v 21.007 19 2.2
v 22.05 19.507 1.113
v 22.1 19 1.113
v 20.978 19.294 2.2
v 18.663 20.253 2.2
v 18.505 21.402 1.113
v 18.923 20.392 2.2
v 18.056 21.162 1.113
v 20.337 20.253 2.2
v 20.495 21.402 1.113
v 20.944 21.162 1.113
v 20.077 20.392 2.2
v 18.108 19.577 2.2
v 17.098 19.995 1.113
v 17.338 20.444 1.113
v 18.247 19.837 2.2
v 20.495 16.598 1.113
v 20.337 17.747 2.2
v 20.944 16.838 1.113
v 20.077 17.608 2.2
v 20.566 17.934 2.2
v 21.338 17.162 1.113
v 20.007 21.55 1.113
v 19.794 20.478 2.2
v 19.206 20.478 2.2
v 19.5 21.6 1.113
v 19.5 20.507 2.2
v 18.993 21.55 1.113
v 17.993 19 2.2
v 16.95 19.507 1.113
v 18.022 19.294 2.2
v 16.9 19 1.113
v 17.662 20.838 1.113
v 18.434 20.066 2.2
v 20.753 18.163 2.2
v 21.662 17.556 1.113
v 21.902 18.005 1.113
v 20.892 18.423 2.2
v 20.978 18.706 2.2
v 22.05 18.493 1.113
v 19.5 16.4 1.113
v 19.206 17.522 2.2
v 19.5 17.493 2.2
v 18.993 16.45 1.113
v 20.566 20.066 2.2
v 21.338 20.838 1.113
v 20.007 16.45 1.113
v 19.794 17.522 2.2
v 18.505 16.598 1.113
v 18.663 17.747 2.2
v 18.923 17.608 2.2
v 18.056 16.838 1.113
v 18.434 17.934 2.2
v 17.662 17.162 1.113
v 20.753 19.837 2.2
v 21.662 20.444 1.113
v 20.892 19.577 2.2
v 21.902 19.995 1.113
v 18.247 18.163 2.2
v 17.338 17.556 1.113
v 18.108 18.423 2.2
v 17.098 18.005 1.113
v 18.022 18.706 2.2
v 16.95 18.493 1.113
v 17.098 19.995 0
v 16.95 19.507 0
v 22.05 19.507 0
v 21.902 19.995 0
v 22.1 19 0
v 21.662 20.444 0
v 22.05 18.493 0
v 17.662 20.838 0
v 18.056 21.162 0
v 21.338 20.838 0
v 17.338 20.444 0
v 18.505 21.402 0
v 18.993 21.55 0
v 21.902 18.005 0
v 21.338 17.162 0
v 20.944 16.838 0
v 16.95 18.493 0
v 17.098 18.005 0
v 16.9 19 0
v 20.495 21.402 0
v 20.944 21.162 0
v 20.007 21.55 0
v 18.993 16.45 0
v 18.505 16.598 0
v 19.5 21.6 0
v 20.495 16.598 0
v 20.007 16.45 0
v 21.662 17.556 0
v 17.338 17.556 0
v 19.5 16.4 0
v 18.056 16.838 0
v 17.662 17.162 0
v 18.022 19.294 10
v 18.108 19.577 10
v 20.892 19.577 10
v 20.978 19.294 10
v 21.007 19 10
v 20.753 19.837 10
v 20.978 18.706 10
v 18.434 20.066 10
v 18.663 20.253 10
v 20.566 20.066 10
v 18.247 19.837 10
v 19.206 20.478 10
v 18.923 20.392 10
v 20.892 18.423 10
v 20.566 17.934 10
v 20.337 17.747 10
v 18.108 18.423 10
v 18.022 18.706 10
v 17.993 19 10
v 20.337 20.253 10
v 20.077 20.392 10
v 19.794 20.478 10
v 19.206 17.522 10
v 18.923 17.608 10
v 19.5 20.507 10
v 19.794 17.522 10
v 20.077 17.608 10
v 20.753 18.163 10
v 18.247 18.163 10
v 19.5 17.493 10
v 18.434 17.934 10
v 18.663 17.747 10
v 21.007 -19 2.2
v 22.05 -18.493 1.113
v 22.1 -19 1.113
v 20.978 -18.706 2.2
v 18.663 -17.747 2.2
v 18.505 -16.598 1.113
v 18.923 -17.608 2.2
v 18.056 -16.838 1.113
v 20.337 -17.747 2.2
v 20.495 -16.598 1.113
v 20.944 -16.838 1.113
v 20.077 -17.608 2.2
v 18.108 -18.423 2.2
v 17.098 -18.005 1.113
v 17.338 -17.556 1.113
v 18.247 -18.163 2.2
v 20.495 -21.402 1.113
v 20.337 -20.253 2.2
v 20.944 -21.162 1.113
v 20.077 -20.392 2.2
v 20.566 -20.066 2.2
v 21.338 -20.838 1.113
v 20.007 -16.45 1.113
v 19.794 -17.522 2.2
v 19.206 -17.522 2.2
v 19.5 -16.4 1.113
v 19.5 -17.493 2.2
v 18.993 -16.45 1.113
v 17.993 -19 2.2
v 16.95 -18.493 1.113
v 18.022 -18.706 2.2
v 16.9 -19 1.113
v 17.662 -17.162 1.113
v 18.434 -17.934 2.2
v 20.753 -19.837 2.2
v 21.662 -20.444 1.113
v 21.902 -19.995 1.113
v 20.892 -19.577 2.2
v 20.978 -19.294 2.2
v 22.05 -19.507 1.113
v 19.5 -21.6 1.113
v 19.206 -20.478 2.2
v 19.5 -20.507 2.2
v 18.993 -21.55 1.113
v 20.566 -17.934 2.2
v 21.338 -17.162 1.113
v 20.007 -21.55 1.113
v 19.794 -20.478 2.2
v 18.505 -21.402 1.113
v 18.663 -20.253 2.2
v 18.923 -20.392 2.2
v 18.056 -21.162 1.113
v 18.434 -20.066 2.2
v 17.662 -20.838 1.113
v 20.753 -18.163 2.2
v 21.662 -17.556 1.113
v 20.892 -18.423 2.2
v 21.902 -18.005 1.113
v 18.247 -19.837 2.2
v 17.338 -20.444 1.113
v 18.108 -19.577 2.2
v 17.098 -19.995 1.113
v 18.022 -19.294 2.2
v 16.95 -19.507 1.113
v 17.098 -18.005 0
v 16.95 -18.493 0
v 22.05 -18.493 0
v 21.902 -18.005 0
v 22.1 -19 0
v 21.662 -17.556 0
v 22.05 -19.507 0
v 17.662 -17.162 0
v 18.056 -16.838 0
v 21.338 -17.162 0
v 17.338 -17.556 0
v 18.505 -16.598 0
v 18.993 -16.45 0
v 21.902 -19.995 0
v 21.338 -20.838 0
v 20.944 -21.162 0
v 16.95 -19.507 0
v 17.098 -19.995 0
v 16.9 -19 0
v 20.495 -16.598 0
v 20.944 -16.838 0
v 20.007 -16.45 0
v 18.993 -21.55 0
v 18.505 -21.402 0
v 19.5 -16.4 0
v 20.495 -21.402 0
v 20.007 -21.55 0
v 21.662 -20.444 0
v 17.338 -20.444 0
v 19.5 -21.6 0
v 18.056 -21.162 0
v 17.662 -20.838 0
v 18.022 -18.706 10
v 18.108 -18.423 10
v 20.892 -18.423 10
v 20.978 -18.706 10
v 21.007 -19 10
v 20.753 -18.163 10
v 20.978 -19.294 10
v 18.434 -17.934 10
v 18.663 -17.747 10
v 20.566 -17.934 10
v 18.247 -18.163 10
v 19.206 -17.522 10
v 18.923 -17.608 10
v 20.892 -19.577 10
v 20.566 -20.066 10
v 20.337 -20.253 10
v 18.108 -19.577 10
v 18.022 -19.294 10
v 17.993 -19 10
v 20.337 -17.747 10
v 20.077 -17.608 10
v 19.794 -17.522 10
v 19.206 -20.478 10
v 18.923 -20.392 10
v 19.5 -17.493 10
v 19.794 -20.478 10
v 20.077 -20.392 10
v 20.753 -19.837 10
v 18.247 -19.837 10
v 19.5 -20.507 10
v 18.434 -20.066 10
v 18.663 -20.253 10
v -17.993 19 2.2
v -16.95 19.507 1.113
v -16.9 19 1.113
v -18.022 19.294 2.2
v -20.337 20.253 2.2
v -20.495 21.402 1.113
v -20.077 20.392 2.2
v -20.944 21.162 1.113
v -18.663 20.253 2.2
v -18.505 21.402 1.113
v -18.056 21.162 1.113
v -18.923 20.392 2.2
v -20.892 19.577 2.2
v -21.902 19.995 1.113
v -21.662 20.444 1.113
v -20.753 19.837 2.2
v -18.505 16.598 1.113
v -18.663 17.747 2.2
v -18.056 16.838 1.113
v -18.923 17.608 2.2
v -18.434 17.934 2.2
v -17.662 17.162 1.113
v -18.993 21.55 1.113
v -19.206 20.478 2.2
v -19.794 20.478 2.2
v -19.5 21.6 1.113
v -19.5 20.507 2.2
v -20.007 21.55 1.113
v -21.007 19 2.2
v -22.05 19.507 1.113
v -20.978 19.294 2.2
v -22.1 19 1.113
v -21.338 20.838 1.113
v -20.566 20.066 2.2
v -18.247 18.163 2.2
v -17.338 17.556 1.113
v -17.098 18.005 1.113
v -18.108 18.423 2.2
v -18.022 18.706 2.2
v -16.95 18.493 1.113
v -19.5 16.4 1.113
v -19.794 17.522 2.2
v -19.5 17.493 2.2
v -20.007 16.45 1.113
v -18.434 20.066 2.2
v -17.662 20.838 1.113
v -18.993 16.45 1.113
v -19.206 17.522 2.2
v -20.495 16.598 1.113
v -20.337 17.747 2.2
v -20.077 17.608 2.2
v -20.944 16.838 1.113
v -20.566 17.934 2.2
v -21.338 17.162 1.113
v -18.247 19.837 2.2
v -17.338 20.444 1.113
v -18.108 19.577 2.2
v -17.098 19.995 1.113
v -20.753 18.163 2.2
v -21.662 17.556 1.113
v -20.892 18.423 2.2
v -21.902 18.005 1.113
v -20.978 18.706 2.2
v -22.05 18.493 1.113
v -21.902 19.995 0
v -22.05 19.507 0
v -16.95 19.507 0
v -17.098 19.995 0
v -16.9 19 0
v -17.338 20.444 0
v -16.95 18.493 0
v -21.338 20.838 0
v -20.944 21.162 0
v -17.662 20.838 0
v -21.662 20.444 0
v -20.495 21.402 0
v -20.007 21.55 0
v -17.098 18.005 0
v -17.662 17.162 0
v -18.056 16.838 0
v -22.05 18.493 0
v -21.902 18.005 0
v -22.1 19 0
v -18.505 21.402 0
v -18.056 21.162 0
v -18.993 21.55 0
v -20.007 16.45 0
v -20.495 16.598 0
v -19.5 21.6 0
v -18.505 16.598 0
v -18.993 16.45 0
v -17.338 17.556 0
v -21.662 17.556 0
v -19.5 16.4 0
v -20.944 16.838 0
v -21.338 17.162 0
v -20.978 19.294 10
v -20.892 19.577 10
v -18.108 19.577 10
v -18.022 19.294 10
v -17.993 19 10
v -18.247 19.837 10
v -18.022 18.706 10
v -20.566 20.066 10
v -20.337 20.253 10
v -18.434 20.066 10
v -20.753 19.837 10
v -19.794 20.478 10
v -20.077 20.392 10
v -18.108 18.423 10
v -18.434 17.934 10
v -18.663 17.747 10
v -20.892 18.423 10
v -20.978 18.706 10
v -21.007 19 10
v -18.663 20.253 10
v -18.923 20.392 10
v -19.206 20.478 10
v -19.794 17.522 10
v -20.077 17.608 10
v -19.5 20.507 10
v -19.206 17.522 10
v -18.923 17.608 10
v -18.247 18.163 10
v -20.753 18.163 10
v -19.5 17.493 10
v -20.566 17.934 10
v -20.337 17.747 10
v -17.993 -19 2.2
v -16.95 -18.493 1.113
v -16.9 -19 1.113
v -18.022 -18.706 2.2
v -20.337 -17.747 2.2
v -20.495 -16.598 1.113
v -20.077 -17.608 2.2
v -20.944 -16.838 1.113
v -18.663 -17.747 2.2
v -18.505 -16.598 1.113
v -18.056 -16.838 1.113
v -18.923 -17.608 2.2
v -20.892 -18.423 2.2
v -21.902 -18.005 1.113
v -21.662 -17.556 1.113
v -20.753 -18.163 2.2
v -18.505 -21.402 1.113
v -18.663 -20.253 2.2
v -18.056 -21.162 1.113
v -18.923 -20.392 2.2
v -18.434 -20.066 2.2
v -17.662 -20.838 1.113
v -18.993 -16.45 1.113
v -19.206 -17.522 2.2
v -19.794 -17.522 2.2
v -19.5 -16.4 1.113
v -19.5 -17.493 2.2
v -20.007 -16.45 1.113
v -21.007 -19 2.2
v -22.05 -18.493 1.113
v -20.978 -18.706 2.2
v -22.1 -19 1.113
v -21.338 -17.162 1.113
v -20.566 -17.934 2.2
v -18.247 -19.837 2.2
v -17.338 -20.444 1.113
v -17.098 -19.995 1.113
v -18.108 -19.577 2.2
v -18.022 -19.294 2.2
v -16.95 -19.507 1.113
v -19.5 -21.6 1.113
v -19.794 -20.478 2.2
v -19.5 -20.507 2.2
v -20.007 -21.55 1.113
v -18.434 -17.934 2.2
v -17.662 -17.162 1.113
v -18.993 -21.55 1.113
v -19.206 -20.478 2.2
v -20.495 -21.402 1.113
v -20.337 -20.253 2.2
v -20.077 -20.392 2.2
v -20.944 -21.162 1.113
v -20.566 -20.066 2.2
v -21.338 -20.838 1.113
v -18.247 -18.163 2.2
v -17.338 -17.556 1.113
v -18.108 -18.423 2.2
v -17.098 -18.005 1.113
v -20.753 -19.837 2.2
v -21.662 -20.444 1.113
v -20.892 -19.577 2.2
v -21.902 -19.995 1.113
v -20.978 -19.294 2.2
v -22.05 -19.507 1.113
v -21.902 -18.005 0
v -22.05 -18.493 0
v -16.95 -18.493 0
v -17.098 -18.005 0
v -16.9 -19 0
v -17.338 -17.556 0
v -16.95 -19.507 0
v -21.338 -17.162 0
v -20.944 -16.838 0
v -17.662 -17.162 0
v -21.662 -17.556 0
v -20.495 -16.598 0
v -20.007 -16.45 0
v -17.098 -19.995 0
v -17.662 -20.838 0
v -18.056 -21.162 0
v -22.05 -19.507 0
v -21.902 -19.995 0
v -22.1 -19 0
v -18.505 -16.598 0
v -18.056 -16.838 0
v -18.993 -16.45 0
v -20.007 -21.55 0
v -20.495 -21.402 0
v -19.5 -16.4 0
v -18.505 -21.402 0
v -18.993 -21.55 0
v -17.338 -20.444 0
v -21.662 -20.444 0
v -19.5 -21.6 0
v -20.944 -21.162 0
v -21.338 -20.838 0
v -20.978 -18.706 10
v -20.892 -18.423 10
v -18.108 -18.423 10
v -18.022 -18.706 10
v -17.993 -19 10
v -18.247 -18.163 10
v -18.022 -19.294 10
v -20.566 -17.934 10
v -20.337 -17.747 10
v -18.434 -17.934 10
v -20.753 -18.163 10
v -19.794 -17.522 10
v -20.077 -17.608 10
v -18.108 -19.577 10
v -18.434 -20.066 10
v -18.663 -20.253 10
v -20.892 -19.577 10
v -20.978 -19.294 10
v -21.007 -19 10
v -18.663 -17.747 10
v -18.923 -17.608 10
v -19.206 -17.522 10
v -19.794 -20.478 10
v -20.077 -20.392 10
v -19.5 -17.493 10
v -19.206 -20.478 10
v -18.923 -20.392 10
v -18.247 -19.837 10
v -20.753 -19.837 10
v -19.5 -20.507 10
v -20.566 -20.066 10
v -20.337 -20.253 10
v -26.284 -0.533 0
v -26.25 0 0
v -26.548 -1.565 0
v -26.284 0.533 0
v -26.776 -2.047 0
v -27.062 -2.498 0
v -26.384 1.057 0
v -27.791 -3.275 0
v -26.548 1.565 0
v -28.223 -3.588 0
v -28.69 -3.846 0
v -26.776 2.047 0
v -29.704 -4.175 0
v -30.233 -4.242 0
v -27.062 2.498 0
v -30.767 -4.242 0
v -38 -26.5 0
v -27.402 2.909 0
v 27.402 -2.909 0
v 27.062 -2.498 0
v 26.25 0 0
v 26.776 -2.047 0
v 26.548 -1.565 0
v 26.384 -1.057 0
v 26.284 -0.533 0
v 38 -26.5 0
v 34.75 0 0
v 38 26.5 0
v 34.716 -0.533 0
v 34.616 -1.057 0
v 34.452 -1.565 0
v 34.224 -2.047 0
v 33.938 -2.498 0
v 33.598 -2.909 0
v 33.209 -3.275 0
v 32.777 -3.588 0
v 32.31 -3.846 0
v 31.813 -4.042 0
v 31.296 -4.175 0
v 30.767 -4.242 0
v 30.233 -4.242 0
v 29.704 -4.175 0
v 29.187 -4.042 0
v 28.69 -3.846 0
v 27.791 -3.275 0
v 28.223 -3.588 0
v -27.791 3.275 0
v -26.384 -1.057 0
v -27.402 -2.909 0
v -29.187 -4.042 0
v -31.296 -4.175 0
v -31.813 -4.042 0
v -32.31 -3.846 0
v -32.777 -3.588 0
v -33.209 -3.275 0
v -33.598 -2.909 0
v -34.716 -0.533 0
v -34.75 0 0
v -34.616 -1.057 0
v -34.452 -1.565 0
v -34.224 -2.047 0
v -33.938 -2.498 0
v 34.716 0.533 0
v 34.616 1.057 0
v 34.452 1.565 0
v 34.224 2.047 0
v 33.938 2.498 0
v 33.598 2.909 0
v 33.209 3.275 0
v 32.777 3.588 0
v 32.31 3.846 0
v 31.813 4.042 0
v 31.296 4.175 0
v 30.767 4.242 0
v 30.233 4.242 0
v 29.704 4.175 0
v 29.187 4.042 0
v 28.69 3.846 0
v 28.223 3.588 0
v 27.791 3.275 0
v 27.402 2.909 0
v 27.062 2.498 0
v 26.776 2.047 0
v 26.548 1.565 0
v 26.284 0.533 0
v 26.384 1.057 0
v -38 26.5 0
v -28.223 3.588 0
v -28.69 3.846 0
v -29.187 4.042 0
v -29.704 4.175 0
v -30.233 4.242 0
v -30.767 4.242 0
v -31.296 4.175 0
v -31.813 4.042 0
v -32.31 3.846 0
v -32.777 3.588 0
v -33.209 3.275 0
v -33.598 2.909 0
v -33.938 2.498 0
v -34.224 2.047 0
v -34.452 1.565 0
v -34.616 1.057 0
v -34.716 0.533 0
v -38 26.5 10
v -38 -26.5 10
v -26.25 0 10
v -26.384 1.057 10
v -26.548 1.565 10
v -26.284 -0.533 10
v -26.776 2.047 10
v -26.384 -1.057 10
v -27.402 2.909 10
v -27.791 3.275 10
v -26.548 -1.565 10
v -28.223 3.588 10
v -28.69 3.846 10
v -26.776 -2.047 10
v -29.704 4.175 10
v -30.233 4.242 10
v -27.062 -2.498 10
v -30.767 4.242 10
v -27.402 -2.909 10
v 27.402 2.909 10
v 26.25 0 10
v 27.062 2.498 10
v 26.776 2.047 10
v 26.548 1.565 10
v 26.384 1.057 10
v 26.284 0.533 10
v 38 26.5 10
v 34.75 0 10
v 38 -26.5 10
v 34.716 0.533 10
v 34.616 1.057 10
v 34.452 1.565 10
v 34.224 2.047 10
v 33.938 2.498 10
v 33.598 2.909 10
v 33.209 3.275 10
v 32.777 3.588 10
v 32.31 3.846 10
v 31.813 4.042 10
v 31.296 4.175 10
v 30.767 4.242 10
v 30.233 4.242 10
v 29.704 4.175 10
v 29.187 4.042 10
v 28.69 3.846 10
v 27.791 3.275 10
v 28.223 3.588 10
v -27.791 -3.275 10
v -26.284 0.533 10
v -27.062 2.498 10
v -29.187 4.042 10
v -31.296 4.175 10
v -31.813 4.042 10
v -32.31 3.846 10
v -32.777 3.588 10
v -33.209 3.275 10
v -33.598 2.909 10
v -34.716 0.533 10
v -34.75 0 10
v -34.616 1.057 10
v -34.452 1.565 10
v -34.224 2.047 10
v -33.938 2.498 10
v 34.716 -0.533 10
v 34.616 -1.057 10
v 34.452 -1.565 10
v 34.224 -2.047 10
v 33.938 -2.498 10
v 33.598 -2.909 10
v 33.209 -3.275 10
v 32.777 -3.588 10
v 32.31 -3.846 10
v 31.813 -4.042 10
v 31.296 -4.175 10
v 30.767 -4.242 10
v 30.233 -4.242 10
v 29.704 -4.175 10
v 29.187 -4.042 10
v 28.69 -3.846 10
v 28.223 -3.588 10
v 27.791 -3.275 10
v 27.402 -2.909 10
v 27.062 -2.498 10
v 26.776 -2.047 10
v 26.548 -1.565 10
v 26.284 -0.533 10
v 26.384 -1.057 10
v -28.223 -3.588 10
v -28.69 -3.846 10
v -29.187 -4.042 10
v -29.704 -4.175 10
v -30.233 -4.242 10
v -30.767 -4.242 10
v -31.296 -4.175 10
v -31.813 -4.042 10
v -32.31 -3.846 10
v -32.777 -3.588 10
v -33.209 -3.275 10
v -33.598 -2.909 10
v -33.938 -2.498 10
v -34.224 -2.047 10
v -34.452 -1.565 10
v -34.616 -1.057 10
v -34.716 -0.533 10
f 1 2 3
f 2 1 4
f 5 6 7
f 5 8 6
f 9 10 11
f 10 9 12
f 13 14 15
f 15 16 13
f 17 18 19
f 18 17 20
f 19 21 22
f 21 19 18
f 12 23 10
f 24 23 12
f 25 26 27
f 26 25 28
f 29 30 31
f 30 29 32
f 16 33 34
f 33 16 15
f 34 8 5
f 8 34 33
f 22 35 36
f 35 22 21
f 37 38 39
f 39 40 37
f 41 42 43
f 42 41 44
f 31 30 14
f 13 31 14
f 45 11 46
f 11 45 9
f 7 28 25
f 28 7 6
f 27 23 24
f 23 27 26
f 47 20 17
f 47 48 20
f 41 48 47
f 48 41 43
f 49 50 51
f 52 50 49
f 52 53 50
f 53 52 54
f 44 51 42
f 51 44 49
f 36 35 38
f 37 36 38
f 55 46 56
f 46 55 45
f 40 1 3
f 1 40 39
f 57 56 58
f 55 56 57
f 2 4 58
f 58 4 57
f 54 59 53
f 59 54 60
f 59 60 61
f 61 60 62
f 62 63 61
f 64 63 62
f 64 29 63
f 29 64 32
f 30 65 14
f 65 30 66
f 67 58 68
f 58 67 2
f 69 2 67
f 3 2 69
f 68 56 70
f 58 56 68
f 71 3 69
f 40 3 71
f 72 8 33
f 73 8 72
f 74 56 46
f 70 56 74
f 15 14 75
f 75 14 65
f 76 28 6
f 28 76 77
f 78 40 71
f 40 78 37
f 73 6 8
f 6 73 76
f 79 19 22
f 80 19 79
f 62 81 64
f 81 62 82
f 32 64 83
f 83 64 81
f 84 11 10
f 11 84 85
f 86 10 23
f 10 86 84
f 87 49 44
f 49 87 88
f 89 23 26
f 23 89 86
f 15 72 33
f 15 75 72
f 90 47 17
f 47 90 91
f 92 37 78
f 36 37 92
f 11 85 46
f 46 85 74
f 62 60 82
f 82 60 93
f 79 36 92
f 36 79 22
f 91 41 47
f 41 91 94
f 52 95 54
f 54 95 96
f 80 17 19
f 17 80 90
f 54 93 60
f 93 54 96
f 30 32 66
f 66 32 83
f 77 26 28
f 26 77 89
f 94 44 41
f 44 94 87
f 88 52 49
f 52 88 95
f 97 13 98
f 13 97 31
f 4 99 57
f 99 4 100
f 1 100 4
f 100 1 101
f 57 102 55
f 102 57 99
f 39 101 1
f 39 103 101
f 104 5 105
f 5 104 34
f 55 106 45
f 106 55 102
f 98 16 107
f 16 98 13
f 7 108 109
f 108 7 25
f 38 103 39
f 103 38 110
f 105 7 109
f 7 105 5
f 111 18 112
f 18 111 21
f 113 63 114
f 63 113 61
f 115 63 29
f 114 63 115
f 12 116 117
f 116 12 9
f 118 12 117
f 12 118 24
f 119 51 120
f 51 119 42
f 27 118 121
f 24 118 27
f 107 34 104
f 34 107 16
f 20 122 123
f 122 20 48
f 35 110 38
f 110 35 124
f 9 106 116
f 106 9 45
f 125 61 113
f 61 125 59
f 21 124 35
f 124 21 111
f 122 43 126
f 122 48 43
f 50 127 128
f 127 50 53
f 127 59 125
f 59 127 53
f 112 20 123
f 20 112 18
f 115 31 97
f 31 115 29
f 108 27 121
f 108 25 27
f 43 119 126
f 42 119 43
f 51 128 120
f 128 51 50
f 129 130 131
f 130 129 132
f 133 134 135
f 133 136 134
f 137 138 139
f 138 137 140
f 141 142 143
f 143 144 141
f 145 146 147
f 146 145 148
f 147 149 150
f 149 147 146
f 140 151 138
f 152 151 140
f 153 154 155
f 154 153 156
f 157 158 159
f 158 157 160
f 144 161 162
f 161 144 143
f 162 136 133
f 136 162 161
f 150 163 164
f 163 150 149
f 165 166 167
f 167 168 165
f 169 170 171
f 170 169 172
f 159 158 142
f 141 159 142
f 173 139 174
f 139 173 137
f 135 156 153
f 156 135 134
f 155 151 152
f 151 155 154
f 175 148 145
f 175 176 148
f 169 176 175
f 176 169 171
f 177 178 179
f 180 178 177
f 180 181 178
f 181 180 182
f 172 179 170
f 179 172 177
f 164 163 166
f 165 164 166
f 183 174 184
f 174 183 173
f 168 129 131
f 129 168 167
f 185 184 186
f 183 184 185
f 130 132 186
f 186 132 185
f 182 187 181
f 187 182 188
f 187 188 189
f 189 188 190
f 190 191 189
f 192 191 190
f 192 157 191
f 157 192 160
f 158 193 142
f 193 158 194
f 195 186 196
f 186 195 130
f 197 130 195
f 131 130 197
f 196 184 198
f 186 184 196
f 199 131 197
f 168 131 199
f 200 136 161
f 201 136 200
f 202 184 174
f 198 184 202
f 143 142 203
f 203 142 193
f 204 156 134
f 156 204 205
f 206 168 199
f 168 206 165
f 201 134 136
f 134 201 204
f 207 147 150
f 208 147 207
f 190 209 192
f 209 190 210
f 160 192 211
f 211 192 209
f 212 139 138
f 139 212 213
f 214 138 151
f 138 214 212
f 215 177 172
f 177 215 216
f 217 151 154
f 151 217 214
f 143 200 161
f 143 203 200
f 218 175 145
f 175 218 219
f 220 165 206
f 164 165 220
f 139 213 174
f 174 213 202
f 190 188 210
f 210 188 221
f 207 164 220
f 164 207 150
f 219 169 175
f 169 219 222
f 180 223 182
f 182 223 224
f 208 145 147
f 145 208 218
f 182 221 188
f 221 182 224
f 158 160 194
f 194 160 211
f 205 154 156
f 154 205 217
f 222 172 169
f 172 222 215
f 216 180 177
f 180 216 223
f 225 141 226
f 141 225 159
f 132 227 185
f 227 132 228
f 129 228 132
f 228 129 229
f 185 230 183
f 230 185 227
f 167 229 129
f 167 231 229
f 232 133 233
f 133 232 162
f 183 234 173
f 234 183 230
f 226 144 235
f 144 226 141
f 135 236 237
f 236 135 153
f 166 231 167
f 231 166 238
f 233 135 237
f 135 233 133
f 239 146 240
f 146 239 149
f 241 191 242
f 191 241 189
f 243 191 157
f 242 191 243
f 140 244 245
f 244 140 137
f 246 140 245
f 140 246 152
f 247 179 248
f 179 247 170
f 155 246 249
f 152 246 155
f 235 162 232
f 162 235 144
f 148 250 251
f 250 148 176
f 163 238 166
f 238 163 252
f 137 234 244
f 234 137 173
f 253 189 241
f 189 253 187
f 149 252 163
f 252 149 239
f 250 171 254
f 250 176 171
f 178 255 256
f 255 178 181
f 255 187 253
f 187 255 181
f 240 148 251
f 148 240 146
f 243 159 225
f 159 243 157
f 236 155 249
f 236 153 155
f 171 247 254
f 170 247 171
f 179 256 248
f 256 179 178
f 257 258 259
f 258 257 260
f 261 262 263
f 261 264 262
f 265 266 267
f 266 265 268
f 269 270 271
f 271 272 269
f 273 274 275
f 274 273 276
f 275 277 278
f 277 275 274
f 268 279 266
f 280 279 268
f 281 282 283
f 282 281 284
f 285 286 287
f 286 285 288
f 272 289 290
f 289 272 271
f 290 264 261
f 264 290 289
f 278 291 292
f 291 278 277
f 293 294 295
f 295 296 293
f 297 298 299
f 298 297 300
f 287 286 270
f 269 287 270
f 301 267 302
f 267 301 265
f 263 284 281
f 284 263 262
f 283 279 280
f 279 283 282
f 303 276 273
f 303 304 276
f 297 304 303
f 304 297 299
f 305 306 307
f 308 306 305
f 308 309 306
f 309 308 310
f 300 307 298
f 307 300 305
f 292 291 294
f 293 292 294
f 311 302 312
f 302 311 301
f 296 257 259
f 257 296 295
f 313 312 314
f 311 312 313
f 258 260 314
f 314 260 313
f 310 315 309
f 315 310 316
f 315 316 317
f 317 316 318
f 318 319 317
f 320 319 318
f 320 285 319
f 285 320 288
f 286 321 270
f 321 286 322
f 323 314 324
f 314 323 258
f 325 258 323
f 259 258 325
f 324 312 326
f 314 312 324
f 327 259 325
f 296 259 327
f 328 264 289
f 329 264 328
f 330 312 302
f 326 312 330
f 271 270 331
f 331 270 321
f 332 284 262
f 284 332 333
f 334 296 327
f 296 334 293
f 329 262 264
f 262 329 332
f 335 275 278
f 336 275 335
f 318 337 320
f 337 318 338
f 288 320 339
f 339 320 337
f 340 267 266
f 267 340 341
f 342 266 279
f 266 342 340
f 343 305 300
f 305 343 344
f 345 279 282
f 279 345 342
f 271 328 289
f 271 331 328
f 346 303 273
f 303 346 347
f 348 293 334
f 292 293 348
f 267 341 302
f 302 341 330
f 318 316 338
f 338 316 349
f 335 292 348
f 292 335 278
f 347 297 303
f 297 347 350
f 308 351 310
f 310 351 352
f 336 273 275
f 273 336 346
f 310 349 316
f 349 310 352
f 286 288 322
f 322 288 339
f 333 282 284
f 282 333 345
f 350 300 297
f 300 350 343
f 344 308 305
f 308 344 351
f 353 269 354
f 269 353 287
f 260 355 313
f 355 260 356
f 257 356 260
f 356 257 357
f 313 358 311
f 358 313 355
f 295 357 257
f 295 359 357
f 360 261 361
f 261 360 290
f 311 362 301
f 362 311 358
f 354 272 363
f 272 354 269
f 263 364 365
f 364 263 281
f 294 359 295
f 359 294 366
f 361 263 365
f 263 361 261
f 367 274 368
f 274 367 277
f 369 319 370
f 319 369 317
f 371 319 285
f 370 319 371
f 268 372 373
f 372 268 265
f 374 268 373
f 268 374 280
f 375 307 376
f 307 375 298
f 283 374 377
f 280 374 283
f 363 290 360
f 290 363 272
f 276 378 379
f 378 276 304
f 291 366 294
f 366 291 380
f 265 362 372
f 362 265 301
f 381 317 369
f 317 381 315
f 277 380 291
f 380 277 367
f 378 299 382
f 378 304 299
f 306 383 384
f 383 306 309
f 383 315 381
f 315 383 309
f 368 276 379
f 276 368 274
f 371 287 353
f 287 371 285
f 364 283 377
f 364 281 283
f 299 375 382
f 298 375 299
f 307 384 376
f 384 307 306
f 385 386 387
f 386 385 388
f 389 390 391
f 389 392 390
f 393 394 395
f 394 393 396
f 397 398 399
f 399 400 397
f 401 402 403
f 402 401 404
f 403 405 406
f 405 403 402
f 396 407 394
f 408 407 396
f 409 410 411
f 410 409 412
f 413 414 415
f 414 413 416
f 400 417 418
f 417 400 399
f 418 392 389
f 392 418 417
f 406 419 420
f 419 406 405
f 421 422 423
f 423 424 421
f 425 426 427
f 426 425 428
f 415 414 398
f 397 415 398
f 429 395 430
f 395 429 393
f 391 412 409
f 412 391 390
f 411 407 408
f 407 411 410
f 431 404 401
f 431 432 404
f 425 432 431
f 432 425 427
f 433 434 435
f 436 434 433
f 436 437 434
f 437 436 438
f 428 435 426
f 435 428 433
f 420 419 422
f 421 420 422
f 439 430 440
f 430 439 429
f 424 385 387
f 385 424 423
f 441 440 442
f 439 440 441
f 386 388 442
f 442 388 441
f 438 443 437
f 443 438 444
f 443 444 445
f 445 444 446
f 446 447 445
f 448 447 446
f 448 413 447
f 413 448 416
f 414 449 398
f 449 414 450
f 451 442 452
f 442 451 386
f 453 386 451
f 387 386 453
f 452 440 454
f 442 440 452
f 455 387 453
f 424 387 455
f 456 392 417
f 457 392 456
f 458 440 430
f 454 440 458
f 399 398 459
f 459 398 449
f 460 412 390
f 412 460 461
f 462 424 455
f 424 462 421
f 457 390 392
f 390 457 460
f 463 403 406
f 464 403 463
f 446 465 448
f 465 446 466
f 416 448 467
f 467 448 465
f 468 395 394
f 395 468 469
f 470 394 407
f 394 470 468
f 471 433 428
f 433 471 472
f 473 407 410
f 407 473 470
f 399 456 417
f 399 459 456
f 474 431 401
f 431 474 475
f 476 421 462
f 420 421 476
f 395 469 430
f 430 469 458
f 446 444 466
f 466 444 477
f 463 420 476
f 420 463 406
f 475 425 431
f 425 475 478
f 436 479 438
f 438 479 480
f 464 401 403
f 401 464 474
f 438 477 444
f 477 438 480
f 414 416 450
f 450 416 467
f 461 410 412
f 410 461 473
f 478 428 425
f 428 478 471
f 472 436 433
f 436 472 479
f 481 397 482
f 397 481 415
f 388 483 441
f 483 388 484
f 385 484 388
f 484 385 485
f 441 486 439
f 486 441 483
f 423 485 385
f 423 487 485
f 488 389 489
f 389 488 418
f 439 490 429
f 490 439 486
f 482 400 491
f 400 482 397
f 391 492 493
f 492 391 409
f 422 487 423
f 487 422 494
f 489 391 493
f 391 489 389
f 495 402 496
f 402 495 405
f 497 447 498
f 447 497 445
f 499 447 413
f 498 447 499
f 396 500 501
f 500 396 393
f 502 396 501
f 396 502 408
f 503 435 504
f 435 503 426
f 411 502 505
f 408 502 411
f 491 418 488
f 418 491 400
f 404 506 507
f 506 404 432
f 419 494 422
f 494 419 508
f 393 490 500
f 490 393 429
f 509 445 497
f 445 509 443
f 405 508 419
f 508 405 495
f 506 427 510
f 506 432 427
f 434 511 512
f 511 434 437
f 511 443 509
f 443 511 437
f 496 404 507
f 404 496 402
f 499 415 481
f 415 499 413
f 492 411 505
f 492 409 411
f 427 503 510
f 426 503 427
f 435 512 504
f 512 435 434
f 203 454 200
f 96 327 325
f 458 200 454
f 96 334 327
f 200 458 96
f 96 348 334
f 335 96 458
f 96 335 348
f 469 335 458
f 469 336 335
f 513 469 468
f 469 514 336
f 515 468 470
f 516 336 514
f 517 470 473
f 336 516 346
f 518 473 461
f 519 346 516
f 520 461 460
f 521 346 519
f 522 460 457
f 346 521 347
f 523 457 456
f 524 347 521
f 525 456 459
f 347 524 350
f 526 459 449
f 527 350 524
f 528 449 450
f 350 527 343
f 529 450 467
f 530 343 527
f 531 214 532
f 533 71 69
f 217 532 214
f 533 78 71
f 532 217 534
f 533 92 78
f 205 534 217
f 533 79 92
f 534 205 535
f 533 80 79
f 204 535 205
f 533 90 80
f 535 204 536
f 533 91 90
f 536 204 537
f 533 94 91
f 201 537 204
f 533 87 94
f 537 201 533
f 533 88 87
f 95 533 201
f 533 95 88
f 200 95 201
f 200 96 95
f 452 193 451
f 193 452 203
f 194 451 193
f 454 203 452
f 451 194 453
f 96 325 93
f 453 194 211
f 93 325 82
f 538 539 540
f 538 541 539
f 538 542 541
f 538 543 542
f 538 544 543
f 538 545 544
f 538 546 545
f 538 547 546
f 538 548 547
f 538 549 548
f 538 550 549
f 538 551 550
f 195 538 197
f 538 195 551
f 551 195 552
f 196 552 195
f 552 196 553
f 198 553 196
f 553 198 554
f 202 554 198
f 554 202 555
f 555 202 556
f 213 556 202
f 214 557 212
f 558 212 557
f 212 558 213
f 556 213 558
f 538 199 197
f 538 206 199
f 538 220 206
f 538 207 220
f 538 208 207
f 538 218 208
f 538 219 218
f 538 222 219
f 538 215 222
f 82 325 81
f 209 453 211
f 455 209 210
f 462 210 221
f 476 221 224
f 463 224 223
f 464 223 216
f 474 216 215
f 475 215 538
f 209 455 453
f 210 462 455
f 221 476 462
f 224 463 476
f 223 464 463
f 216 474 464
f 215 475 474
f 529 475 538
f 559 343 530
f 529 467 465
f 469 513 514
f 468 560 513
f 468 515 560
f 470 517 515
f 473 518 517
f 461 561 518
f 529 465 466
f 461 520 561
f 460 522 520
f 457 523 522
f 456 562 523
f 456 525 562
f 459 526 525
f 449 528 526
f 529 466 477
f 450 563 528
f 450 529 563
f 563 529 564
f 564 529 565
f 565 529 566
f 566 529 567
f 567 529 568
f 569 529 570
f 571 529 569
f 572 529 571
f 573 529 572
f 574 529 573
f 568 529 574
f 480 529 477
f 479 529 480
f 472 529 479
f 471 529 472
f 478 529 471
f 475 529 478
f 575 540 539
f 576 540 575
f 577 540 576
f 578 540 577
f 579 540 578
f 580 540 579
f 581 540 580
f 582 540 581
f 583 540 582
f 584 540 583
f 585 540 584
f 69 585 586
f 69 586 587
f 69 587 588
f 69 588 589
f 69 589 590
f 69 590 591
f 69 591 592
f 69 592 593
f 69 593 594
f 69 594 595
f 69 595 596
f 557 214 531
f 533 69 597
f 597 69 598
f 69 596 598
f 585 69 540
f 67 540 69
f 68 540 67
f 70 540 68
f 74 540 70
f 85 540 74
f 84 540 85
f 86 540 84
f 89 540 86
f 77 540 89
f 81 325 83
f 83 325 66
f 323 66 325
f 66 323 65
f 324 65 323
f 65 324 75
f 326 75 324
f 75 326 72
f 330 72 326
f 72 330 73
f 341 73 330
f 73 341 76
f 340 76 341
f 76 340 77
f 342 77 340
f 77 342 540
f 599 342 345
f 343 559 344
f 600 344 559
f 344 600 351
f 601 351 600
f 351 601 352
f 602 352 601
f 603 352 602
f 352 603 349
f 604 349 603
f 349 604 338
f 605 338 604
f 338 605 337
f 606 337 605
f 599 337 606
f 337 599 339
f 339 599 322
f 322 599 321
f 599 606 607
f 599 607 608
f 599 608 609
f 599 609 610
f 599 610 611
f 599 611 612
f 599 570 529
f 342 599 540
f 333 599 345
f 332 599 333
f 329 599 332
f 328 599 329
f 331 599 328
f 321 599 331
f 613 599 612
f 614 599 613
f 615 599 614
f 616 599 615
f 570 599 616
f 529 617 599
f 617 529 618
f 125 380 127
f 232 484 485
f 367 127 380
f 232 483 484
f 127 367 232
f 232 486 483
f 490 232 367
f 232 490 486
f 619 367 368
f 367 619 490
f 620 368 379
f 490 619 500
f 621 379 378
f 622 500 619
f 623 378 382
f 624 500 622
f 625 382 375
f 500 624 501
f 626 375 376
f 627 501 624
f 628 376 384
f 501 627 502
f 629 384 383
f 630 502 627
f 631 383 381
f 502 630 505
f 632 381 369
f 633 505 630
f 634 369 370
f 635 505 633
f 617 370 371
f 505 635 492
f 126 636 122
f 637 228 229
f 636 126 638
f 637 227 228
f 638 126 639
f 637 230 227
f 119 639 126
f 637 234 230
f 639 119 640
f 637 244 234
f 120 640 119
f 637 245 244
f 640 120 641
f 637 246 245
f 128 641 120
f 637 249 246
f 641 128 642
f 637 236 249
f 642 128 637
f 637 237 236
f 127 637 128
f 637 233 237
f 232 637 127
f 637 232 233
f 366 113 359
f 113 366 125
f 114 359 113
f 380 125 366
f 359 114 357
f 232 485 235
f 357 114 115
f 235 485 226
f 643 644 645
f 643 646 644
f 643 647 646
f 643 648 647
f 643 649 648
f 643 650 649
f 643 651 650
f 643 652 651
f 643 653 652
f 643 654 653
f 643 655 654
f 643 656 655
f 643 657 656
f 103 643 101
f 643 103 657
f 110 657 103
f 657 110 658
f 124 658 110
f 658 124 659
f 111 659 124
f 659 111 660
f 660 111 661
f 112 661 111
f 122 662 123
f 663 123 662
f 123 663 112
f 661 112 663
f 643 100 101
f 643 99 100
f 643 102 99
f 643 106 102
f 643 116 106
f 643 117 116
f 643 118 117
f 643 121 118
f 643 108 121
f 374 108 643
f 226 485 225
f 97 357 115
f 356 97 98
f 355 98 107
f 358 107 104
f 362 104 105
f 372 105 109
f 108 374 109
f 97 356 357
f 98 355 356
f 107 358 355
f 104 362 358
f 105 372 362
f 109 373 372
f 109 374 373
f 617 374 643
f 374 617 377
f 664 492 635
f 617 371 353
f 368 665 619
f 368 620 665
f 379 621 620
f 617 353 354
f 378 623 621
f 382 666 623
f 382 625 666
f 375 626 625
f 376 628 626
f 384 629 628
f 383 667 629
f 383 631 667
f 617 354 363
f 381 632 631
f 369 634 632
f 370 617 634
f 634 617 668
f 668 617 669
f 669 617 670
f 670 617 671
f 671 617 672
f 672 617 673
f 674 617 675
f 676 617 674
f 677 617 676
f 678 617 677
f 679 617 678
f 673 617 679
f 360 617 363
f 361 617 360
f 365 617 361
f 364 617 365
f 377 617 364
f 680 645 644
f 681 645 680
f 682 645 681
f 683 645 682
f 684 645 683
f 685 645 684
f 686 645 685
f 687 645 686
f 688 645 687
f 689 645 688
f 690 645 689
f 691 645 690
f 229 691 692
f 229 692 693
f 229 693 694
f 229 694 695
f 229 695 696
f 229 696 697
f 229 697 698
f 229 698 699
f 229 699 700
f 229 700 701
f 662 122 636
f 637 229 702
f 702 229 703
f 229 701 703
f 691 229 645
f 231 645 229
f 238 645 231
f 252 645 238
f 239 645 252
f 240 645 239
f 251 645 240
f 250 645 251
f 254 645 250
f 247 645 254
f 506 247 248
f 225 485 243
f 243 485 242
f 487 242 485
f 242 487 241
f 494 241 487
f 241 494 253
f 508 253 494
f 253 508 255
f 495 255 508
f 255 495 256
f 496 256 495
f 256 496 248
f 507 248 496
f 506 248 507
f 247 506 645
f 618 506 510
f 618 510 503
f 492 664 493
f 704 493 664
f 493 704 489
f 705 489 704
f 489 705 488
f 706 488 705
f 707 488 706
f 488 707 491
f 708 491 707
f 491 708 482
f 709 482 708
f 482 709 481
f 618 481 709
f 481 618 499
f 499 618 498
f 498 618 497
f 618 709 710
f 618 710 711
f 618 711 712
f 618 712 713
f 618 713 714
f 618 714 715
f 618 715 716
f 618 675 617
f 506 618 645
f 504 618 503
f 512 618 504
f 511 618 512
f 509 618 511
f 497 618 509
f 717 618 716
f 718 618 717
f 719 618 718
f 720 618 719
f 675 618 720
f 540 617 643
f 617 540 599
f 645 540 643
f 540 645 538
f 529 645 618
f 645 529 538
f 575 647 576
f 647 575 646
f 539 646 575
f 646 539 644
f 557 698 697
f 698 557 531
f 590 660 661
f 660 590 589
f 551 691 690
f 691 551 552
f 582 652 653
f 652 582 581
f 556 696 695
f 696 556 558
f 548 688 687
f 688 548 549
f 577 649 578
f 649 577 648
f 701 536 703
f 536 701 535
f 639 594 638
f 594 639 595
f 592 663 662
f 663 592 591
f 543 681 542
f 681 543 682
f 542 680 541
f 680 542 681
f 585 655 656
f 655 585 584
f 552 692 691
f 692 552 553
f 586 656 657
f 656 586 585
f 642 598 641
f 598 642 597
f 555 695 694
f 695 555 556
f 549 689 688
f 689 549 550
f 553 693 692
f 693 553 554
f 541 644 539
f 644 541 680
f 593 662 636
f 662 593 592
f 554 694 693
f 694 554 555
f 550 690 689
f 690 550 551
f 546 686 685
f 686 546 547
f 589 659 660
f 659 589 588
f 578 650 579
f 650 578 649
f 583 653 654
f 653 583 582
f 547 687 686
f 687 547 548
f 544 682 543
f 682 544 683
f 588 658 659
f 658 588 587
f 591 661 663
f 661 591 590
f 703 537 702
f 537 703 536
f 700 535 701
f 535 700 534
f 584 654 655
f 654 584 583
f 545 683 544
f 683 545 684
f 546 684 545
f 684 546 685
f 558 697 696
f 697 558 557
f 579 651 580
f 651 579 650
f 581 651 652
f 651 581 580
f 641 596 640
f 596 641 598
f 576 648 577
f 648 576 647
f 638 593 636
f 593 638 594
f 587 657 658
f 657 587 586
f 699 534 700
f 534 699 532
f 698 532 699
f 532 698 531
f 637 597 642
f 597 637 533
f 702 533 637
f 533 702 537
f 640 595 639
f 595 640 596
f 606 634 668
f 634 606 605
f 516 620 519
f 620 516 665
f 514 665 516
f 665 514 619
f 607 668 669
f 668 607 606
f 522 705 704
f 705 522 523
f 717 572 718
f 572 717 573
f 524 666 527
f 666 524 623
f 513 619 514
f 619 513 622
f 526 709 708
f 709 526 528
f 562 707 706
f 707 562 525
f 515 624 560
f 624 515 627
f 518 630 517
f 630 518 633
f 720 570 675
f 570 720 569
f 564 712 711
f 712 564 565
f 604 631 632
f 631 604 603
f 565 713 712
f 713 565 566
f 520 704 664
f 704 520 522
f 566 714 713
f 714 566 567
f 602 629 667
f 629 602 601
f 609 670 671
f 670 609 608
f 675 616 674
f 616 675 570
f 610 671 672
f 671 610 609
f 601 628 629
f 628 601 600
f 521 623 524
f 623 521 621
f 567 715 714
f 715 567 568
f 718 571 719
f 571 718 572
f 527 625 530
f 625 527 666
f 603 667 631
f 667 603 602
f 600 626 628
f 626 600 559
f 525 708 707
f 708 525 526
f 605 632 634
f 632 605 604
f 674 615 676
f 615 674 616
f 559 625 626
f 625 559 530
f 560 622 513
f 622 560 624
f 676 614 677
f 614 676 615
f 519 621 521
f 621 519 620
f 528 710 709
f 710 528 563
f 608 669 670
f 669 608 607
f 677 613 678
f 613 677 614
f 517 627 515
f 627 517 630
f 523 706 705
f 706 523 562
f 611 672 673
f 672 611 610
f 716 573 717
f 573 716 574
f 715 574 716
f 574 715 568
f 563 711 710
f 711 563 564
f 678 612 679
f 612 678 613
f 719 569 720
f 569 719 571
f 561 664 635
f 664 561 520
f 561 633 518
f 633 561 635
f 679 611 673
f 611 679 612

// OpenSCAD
// include external resources
include <screw_holes.scad>

/* [Hidden] */
$fn=50;

/* [IMU] */
imu_width = 46;
screw_to_border = 5; // space between M3 hole and border
/* [Hidden] */
distance_between_holes_x = 39;
distance_between_holes_y = 38;

/* [Plate handle] */
mount_length = distance_between_holes_y + (2 * screw_to_border );
half_mount_length = mount_length / 2;

/* [Main Plate] */
plate_handle_length = 15; // distance between wall and border
plate_thickness = 10; // the main thickness of the whole thing
plate_length =  imu_width + 2*plate_handle_length;
plate_width = mount_length+5;

/* [M8 screw params(mount)] */
m8_diameter = 8.5;
m8_hole_off = plate_handle_length/2;
m8_screw_hole_x = plate_length/2 - m8_hole_off;

/* [M3 screw params(imu)] */
m3_screw_top_width = 5;
m3_screw_top_height = 2;
m3_screw_angle = 90;
m3_screw_hole_x = (distance_between_holes_x / 2) ;
m3_screw_hole_y = half_mount_length - screw_to_border;

// Main Plate
difference(){
    // Base plate
    linear_extrude(plate_thickness){
        square([plate_length, plate_width], center = true);
    }

    // holes for mounting to Alu-profile
    translate([+m8_screw_hole_x, 0, 0]) cylinder(h=plate_thickness, d=m8_diameter);
    translate([-m8_screw_hole_x, 0, 0]) cylinder(h=plate_thickness, d=m8_diameter);

    // holes for mounting imu
    translate([+m3_screw_hole_x, +m3_screw_hole_y, 0]) screw_hole([m3_screw_top_width, m3_screw_top_height, m3_screw_angle], M3, plate_thickness);
    translate([+m3_screw_hole_x, -m3_screw_hole_y, 0]) screw_hole([m3_screw_top_width, m3_screw_top_height, m3_screw_angle], M3, plate_thickness);
    translate([-m3_screw_hole_x, +m3_screw_hole_y, 0]) screw_hole([m3_screw_top_width, m3_screw_top_height, m3_screw_angle], M3, plate_thickness);
    translate([-m3_screw_hole_x, -m3_screw_hole_y, 0]) screw_hole([m3_screw_top_width, m3_screw_top_height, m3_screw_angle], M3, plate_thickness);
}
